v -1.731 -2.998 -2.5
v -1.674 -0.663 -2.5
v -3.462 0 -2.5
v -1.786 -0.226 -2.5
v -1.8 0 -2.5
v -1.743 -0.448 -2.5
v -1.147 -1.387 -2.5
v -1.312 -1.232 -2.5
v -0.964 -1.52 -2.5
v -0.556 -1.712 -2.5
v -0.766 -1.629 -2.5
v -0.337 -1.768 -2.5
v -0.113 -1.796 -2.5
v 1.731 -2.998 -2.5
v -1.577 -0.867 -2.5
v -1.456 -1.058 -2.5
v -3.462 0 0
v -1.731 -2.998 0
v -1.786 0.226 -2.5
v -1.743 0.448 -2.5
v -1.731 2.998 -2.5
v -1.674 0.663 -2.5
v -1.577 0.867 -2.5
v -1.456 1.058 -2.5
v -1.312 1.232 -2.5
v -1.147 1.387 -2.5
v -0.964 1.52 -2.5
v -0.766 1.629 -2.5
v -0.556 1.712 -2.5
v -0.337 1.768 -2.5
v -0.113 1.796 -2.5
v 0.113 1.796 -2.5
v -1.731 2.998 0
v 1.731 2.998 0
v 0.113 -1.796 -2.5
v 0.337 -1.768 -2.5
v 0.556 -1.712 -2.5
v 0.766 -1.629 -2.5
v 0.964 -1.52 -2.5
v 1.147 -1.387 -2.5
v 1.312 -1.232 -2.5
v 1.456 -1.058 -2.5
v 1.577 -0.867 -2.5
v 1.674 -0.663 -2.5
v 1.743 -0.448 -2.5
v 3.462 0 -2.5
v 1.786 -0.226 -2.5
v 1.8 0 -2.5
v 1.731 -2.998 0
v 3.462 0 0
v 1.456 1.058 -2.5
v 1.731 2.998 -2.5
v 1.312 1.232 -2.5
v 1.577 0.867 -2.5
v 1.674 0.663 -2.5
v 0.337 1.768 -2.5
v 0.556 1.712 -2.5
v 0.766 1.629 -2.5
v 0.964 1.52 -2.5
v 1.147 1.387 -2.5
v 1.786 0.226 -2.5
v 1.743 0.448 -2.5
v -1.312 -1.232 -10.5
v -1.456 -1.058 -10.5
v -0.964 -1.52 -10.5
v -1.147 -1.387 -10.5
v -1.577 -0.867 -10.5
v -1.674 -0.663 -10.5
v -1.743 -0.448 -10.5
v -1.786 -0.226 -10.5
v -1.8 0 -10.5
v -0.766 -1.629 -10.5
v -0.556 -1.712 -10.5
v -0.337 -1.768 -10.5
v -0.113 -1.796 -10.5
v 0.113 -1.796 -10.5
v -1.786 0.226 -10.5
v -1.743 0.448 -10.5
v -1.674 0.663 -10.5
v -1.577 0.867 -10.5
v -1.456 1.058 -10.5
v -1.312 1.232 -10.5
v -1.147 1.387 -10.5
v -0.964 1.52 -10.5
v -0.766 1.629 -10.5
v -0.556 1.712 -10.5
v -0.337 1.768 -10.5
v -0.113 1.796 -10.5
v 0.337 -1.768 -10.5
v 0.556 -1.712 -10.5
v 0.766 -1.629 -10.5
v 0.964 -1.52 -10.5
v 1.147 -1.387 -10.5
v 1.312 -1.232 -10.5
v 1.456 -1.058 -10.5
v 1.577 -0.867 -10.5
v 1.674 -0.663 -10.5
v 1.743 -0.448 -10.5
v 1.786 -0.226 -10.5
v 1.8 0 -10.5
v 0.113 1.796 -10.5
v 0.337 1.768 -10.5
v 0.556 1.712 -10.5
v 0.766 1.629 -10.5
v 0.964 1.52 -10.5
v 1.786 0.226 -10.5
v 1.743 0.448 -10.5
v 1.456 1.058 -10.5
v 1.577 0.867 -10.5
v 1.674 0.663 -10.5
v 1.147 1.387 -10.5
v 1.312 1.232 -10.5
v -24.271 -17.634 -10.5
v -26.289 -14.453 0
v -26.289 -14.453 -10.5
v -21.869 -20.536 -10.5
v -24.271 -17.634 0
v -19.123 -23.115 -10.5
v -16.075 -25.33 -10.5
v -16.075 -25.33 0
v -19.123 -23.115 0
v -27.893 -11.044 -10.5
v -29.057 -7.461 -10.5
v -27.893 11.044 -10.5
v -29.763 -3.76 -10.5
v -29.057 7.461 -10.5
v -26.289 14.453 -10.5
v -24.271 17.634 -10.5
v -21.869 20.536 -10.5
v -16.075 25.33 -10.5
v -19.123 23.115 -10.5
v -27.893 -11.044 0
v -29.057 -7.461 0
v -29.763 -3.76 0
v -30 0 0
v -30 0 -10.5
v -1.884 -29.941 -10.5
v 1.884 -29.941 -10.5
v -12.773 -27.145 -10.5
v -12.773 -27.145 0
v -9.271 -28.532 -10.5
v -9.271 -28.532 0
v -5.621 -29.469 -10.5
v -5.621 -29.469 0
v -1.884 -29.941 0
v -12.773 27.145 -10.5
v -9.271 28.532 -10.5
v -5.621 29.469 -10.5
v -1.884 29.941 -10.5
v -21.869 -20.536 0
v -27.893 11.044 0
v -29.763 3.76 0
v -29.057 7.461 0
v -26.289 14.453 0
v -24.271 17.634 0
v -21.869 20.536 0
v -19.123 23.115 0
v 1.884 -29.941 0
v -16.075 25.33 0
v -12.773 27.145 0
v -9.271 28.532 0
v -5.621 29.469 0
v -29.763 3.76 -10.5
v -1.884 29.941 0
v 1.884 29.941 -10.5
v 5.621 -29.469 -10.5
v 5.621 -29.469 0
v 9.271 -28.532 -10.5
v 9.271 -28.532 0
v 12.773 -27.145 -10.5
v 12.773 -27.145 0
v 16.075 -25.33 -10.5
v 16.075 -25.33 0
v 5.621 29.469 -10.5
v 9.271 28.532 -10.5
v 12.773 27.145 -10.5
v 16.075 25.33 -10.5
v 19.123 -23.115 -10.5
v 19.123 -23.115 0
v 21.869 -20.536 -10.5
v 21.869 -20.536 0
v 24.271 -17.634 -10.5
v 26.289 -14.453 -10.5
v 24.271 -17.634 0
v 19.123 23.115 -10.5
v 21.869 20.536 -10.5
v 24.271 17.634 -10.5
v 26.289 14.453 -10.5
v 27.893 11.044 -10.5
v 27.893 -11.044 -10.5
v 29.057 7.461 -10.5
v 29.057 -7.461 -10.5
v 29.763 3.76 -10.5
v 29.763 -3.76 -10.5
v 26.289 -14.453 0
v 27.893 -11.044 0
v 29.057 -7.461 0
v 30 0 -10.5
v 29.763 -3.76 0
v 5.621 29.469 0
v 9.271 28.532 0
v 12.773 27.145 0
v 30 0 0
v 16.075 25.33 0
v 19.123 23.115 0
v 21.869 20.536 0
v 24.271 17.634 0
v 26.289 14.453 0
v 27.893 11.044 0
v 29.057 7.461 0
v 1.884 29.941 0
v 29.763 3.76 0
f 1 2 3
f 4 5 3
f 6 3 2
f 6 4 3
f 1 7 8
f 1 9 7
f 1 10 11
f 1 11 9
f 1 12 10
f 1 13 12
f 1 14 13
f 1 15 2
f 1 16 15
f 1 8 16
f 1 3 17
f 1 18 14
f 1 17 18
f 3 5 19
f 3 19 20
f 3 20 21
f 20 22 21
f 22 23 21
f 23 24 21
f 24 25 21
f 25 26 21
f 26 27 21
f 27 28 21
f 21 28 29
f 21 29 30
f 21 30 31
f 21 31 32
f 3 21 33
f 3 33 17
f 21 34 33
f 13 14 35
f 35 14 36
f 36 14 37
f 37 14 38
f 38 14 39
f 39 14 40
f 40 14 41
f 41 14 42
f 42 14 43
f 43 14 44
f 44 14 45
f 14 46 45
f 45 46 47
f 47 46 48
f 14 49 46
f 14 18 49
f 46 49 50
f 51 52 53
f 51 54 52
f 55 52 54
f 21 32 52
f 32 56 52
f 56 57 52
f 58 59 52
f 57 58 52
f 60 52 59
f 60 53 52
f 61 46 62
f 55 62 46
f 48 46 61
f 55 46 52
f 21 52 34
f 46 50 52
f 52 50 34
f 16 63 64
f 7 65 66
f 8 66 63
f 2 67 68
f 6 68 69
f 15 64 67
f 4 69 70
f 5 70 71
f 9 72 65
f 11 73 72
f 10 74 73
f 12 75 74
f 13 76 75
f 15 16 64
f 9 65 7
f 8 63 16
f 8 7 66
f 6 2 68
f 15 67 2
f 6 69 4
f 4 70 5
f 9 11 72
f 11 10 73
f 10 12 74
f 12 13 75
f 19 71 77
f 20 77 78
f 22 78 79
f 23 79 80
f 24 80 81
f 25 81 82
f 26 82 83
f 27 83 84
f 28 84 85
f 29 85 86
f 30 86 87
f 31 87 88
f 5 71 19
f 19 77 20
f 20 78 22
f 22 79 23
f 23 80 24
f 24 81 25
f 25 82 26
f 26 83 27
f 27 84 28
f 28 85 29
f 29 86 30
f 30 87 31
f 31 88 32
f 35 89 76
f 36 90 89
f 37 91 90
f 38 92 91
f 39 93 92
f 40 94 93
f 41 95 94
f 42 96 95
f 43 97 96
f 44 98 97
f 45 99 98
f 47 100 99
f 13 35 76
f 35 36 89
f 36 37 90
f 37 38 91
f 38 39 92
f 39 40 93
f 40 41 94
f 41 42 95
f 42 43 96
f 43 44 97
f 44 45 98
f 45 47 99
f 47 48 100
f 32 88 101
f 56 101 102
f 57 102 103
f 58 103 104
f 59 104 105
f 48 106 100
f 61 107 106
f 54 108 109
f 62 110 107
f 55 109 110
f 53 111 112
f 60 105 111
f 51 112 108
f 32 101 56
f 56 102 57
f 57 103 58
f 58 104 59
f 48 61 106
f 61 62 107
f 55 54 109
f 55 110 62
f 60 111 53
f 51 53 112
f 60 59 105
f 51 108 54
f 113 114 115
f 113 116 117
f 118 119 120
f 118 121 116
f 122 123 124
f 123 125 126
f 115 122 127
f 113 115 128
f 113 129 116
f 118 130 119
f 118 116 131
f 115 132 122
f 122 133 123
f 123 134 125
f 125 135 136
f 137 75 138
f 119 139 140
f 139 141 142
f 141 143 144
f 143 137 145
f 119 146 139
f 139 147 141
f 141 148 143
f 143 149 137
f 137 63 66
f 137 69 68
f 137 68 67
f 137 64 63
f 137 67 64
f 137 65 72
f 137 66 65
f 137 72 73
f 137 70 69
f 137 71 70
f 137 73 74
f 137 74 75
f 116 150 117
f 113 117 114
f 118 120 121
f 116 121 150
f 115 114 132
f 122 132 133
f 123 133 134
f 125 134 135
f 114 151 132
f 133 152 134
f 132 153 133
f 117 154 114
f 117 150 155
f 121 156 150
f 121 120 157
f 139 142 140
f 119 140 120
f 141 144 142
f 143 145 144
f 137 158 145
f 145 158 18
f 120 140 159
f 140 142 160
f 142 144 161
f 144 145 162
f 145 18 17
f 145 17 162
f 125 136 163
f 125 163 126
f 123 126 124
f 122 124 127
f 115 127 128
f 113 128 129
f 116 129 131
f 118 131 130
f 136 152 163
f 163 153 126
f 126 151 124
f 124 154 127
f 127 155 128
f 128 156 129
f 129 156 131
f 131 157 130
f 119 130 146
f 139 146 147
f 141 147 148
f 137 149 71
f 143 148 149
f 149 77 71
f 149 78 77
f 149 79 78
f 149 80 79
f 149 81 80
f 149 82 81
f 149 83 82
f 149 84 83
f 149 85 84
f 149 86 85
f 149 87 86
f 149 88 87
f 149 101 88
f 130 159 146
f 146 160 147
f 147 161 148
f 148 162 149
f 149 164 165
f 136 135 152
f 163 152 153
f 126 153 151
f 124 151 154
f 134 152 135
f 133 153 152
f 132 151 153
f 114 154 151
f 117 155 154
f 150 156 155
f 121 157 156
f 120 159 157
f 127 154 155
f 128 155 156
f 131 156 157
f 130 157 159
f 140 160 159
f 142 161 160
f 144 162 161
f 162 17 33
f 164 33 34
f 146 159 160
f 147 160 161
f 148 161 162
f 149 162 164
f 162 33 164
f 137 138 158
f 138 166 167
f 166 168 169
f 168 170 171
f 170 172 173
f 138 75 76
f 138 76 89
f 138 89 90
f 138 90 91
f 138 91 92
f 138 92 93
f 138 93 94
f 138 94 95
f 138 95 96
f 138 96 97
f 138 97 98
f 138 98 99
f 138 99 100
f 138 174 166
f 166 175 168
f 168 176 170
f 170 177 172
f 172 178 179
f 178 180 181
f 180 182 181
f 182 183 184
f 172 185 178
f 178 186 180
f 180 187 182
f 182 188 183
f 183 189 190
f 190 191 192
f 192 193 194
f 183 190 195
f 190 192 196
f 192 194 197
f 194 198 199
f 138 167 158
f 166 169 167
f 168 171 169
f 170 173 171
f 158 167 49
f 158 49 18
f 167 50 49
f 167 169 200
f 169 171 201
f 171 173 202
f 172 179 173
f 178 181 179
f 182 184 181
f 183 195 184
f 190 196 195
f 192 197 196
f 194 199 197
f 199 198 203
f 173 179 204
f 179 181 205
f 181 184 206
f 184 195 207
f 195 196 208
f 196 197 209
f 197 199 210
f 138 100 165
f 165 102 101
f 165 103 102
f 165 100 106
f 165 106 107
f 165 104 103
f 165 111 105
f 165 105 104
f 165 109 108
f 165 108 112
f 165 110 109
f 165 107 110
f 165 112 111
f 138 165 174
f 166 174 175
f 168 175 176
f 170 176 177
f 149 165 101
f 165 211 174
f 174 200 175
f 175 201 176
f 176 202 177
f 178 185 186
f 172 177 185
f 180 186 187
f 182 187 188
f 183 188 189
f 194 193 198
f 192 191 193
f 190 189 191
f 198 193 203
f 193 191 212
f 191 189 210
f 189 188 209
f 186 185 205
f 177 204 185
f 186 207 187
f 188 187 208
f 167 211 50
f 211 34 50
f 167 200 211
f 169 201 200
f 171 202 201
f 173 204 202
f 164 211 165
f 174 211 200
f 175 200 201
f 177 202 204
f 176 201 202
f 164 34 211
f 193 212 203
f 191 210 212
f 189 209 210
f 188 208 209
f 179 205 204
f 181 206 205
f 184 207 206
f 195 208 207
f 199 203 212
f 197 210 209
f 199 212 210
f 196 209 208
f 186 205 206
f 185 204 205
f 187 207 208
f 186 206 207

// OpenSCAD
$fn = 50;


difference() {
	union() {
		translate(v = [0, 0, -10.5000000000]) {
			cylinder(h = 10.5000000000, r = 30.0000000000);
		}
	}
	union() {
		translate(v = [0, 0, 0]) {
			rotate(a = [0, 0, 0]) {
				difference() {
					union() {
						translate(v = [0, 0, -2.5000000000]) {
							linear_extrude(height = 2.5000000000) {
								polygon(points = [[3.4620000000, 0.0000000000], [1.7310000000, 2.9981799479], [-1.7310000000, 2.9981799479], [-3.4620000000, 0.0000000000], [-1.7310000000, -2.9981799479], [1.7310000000, -2.9981799479]]);
							}
						}
					}
					union();
				}
			}
		}
		#translate(v = [0, 0, -100.0000000000]) {
			cylinder(h = 200, r = 1.8000000000);
		}
	}
}
